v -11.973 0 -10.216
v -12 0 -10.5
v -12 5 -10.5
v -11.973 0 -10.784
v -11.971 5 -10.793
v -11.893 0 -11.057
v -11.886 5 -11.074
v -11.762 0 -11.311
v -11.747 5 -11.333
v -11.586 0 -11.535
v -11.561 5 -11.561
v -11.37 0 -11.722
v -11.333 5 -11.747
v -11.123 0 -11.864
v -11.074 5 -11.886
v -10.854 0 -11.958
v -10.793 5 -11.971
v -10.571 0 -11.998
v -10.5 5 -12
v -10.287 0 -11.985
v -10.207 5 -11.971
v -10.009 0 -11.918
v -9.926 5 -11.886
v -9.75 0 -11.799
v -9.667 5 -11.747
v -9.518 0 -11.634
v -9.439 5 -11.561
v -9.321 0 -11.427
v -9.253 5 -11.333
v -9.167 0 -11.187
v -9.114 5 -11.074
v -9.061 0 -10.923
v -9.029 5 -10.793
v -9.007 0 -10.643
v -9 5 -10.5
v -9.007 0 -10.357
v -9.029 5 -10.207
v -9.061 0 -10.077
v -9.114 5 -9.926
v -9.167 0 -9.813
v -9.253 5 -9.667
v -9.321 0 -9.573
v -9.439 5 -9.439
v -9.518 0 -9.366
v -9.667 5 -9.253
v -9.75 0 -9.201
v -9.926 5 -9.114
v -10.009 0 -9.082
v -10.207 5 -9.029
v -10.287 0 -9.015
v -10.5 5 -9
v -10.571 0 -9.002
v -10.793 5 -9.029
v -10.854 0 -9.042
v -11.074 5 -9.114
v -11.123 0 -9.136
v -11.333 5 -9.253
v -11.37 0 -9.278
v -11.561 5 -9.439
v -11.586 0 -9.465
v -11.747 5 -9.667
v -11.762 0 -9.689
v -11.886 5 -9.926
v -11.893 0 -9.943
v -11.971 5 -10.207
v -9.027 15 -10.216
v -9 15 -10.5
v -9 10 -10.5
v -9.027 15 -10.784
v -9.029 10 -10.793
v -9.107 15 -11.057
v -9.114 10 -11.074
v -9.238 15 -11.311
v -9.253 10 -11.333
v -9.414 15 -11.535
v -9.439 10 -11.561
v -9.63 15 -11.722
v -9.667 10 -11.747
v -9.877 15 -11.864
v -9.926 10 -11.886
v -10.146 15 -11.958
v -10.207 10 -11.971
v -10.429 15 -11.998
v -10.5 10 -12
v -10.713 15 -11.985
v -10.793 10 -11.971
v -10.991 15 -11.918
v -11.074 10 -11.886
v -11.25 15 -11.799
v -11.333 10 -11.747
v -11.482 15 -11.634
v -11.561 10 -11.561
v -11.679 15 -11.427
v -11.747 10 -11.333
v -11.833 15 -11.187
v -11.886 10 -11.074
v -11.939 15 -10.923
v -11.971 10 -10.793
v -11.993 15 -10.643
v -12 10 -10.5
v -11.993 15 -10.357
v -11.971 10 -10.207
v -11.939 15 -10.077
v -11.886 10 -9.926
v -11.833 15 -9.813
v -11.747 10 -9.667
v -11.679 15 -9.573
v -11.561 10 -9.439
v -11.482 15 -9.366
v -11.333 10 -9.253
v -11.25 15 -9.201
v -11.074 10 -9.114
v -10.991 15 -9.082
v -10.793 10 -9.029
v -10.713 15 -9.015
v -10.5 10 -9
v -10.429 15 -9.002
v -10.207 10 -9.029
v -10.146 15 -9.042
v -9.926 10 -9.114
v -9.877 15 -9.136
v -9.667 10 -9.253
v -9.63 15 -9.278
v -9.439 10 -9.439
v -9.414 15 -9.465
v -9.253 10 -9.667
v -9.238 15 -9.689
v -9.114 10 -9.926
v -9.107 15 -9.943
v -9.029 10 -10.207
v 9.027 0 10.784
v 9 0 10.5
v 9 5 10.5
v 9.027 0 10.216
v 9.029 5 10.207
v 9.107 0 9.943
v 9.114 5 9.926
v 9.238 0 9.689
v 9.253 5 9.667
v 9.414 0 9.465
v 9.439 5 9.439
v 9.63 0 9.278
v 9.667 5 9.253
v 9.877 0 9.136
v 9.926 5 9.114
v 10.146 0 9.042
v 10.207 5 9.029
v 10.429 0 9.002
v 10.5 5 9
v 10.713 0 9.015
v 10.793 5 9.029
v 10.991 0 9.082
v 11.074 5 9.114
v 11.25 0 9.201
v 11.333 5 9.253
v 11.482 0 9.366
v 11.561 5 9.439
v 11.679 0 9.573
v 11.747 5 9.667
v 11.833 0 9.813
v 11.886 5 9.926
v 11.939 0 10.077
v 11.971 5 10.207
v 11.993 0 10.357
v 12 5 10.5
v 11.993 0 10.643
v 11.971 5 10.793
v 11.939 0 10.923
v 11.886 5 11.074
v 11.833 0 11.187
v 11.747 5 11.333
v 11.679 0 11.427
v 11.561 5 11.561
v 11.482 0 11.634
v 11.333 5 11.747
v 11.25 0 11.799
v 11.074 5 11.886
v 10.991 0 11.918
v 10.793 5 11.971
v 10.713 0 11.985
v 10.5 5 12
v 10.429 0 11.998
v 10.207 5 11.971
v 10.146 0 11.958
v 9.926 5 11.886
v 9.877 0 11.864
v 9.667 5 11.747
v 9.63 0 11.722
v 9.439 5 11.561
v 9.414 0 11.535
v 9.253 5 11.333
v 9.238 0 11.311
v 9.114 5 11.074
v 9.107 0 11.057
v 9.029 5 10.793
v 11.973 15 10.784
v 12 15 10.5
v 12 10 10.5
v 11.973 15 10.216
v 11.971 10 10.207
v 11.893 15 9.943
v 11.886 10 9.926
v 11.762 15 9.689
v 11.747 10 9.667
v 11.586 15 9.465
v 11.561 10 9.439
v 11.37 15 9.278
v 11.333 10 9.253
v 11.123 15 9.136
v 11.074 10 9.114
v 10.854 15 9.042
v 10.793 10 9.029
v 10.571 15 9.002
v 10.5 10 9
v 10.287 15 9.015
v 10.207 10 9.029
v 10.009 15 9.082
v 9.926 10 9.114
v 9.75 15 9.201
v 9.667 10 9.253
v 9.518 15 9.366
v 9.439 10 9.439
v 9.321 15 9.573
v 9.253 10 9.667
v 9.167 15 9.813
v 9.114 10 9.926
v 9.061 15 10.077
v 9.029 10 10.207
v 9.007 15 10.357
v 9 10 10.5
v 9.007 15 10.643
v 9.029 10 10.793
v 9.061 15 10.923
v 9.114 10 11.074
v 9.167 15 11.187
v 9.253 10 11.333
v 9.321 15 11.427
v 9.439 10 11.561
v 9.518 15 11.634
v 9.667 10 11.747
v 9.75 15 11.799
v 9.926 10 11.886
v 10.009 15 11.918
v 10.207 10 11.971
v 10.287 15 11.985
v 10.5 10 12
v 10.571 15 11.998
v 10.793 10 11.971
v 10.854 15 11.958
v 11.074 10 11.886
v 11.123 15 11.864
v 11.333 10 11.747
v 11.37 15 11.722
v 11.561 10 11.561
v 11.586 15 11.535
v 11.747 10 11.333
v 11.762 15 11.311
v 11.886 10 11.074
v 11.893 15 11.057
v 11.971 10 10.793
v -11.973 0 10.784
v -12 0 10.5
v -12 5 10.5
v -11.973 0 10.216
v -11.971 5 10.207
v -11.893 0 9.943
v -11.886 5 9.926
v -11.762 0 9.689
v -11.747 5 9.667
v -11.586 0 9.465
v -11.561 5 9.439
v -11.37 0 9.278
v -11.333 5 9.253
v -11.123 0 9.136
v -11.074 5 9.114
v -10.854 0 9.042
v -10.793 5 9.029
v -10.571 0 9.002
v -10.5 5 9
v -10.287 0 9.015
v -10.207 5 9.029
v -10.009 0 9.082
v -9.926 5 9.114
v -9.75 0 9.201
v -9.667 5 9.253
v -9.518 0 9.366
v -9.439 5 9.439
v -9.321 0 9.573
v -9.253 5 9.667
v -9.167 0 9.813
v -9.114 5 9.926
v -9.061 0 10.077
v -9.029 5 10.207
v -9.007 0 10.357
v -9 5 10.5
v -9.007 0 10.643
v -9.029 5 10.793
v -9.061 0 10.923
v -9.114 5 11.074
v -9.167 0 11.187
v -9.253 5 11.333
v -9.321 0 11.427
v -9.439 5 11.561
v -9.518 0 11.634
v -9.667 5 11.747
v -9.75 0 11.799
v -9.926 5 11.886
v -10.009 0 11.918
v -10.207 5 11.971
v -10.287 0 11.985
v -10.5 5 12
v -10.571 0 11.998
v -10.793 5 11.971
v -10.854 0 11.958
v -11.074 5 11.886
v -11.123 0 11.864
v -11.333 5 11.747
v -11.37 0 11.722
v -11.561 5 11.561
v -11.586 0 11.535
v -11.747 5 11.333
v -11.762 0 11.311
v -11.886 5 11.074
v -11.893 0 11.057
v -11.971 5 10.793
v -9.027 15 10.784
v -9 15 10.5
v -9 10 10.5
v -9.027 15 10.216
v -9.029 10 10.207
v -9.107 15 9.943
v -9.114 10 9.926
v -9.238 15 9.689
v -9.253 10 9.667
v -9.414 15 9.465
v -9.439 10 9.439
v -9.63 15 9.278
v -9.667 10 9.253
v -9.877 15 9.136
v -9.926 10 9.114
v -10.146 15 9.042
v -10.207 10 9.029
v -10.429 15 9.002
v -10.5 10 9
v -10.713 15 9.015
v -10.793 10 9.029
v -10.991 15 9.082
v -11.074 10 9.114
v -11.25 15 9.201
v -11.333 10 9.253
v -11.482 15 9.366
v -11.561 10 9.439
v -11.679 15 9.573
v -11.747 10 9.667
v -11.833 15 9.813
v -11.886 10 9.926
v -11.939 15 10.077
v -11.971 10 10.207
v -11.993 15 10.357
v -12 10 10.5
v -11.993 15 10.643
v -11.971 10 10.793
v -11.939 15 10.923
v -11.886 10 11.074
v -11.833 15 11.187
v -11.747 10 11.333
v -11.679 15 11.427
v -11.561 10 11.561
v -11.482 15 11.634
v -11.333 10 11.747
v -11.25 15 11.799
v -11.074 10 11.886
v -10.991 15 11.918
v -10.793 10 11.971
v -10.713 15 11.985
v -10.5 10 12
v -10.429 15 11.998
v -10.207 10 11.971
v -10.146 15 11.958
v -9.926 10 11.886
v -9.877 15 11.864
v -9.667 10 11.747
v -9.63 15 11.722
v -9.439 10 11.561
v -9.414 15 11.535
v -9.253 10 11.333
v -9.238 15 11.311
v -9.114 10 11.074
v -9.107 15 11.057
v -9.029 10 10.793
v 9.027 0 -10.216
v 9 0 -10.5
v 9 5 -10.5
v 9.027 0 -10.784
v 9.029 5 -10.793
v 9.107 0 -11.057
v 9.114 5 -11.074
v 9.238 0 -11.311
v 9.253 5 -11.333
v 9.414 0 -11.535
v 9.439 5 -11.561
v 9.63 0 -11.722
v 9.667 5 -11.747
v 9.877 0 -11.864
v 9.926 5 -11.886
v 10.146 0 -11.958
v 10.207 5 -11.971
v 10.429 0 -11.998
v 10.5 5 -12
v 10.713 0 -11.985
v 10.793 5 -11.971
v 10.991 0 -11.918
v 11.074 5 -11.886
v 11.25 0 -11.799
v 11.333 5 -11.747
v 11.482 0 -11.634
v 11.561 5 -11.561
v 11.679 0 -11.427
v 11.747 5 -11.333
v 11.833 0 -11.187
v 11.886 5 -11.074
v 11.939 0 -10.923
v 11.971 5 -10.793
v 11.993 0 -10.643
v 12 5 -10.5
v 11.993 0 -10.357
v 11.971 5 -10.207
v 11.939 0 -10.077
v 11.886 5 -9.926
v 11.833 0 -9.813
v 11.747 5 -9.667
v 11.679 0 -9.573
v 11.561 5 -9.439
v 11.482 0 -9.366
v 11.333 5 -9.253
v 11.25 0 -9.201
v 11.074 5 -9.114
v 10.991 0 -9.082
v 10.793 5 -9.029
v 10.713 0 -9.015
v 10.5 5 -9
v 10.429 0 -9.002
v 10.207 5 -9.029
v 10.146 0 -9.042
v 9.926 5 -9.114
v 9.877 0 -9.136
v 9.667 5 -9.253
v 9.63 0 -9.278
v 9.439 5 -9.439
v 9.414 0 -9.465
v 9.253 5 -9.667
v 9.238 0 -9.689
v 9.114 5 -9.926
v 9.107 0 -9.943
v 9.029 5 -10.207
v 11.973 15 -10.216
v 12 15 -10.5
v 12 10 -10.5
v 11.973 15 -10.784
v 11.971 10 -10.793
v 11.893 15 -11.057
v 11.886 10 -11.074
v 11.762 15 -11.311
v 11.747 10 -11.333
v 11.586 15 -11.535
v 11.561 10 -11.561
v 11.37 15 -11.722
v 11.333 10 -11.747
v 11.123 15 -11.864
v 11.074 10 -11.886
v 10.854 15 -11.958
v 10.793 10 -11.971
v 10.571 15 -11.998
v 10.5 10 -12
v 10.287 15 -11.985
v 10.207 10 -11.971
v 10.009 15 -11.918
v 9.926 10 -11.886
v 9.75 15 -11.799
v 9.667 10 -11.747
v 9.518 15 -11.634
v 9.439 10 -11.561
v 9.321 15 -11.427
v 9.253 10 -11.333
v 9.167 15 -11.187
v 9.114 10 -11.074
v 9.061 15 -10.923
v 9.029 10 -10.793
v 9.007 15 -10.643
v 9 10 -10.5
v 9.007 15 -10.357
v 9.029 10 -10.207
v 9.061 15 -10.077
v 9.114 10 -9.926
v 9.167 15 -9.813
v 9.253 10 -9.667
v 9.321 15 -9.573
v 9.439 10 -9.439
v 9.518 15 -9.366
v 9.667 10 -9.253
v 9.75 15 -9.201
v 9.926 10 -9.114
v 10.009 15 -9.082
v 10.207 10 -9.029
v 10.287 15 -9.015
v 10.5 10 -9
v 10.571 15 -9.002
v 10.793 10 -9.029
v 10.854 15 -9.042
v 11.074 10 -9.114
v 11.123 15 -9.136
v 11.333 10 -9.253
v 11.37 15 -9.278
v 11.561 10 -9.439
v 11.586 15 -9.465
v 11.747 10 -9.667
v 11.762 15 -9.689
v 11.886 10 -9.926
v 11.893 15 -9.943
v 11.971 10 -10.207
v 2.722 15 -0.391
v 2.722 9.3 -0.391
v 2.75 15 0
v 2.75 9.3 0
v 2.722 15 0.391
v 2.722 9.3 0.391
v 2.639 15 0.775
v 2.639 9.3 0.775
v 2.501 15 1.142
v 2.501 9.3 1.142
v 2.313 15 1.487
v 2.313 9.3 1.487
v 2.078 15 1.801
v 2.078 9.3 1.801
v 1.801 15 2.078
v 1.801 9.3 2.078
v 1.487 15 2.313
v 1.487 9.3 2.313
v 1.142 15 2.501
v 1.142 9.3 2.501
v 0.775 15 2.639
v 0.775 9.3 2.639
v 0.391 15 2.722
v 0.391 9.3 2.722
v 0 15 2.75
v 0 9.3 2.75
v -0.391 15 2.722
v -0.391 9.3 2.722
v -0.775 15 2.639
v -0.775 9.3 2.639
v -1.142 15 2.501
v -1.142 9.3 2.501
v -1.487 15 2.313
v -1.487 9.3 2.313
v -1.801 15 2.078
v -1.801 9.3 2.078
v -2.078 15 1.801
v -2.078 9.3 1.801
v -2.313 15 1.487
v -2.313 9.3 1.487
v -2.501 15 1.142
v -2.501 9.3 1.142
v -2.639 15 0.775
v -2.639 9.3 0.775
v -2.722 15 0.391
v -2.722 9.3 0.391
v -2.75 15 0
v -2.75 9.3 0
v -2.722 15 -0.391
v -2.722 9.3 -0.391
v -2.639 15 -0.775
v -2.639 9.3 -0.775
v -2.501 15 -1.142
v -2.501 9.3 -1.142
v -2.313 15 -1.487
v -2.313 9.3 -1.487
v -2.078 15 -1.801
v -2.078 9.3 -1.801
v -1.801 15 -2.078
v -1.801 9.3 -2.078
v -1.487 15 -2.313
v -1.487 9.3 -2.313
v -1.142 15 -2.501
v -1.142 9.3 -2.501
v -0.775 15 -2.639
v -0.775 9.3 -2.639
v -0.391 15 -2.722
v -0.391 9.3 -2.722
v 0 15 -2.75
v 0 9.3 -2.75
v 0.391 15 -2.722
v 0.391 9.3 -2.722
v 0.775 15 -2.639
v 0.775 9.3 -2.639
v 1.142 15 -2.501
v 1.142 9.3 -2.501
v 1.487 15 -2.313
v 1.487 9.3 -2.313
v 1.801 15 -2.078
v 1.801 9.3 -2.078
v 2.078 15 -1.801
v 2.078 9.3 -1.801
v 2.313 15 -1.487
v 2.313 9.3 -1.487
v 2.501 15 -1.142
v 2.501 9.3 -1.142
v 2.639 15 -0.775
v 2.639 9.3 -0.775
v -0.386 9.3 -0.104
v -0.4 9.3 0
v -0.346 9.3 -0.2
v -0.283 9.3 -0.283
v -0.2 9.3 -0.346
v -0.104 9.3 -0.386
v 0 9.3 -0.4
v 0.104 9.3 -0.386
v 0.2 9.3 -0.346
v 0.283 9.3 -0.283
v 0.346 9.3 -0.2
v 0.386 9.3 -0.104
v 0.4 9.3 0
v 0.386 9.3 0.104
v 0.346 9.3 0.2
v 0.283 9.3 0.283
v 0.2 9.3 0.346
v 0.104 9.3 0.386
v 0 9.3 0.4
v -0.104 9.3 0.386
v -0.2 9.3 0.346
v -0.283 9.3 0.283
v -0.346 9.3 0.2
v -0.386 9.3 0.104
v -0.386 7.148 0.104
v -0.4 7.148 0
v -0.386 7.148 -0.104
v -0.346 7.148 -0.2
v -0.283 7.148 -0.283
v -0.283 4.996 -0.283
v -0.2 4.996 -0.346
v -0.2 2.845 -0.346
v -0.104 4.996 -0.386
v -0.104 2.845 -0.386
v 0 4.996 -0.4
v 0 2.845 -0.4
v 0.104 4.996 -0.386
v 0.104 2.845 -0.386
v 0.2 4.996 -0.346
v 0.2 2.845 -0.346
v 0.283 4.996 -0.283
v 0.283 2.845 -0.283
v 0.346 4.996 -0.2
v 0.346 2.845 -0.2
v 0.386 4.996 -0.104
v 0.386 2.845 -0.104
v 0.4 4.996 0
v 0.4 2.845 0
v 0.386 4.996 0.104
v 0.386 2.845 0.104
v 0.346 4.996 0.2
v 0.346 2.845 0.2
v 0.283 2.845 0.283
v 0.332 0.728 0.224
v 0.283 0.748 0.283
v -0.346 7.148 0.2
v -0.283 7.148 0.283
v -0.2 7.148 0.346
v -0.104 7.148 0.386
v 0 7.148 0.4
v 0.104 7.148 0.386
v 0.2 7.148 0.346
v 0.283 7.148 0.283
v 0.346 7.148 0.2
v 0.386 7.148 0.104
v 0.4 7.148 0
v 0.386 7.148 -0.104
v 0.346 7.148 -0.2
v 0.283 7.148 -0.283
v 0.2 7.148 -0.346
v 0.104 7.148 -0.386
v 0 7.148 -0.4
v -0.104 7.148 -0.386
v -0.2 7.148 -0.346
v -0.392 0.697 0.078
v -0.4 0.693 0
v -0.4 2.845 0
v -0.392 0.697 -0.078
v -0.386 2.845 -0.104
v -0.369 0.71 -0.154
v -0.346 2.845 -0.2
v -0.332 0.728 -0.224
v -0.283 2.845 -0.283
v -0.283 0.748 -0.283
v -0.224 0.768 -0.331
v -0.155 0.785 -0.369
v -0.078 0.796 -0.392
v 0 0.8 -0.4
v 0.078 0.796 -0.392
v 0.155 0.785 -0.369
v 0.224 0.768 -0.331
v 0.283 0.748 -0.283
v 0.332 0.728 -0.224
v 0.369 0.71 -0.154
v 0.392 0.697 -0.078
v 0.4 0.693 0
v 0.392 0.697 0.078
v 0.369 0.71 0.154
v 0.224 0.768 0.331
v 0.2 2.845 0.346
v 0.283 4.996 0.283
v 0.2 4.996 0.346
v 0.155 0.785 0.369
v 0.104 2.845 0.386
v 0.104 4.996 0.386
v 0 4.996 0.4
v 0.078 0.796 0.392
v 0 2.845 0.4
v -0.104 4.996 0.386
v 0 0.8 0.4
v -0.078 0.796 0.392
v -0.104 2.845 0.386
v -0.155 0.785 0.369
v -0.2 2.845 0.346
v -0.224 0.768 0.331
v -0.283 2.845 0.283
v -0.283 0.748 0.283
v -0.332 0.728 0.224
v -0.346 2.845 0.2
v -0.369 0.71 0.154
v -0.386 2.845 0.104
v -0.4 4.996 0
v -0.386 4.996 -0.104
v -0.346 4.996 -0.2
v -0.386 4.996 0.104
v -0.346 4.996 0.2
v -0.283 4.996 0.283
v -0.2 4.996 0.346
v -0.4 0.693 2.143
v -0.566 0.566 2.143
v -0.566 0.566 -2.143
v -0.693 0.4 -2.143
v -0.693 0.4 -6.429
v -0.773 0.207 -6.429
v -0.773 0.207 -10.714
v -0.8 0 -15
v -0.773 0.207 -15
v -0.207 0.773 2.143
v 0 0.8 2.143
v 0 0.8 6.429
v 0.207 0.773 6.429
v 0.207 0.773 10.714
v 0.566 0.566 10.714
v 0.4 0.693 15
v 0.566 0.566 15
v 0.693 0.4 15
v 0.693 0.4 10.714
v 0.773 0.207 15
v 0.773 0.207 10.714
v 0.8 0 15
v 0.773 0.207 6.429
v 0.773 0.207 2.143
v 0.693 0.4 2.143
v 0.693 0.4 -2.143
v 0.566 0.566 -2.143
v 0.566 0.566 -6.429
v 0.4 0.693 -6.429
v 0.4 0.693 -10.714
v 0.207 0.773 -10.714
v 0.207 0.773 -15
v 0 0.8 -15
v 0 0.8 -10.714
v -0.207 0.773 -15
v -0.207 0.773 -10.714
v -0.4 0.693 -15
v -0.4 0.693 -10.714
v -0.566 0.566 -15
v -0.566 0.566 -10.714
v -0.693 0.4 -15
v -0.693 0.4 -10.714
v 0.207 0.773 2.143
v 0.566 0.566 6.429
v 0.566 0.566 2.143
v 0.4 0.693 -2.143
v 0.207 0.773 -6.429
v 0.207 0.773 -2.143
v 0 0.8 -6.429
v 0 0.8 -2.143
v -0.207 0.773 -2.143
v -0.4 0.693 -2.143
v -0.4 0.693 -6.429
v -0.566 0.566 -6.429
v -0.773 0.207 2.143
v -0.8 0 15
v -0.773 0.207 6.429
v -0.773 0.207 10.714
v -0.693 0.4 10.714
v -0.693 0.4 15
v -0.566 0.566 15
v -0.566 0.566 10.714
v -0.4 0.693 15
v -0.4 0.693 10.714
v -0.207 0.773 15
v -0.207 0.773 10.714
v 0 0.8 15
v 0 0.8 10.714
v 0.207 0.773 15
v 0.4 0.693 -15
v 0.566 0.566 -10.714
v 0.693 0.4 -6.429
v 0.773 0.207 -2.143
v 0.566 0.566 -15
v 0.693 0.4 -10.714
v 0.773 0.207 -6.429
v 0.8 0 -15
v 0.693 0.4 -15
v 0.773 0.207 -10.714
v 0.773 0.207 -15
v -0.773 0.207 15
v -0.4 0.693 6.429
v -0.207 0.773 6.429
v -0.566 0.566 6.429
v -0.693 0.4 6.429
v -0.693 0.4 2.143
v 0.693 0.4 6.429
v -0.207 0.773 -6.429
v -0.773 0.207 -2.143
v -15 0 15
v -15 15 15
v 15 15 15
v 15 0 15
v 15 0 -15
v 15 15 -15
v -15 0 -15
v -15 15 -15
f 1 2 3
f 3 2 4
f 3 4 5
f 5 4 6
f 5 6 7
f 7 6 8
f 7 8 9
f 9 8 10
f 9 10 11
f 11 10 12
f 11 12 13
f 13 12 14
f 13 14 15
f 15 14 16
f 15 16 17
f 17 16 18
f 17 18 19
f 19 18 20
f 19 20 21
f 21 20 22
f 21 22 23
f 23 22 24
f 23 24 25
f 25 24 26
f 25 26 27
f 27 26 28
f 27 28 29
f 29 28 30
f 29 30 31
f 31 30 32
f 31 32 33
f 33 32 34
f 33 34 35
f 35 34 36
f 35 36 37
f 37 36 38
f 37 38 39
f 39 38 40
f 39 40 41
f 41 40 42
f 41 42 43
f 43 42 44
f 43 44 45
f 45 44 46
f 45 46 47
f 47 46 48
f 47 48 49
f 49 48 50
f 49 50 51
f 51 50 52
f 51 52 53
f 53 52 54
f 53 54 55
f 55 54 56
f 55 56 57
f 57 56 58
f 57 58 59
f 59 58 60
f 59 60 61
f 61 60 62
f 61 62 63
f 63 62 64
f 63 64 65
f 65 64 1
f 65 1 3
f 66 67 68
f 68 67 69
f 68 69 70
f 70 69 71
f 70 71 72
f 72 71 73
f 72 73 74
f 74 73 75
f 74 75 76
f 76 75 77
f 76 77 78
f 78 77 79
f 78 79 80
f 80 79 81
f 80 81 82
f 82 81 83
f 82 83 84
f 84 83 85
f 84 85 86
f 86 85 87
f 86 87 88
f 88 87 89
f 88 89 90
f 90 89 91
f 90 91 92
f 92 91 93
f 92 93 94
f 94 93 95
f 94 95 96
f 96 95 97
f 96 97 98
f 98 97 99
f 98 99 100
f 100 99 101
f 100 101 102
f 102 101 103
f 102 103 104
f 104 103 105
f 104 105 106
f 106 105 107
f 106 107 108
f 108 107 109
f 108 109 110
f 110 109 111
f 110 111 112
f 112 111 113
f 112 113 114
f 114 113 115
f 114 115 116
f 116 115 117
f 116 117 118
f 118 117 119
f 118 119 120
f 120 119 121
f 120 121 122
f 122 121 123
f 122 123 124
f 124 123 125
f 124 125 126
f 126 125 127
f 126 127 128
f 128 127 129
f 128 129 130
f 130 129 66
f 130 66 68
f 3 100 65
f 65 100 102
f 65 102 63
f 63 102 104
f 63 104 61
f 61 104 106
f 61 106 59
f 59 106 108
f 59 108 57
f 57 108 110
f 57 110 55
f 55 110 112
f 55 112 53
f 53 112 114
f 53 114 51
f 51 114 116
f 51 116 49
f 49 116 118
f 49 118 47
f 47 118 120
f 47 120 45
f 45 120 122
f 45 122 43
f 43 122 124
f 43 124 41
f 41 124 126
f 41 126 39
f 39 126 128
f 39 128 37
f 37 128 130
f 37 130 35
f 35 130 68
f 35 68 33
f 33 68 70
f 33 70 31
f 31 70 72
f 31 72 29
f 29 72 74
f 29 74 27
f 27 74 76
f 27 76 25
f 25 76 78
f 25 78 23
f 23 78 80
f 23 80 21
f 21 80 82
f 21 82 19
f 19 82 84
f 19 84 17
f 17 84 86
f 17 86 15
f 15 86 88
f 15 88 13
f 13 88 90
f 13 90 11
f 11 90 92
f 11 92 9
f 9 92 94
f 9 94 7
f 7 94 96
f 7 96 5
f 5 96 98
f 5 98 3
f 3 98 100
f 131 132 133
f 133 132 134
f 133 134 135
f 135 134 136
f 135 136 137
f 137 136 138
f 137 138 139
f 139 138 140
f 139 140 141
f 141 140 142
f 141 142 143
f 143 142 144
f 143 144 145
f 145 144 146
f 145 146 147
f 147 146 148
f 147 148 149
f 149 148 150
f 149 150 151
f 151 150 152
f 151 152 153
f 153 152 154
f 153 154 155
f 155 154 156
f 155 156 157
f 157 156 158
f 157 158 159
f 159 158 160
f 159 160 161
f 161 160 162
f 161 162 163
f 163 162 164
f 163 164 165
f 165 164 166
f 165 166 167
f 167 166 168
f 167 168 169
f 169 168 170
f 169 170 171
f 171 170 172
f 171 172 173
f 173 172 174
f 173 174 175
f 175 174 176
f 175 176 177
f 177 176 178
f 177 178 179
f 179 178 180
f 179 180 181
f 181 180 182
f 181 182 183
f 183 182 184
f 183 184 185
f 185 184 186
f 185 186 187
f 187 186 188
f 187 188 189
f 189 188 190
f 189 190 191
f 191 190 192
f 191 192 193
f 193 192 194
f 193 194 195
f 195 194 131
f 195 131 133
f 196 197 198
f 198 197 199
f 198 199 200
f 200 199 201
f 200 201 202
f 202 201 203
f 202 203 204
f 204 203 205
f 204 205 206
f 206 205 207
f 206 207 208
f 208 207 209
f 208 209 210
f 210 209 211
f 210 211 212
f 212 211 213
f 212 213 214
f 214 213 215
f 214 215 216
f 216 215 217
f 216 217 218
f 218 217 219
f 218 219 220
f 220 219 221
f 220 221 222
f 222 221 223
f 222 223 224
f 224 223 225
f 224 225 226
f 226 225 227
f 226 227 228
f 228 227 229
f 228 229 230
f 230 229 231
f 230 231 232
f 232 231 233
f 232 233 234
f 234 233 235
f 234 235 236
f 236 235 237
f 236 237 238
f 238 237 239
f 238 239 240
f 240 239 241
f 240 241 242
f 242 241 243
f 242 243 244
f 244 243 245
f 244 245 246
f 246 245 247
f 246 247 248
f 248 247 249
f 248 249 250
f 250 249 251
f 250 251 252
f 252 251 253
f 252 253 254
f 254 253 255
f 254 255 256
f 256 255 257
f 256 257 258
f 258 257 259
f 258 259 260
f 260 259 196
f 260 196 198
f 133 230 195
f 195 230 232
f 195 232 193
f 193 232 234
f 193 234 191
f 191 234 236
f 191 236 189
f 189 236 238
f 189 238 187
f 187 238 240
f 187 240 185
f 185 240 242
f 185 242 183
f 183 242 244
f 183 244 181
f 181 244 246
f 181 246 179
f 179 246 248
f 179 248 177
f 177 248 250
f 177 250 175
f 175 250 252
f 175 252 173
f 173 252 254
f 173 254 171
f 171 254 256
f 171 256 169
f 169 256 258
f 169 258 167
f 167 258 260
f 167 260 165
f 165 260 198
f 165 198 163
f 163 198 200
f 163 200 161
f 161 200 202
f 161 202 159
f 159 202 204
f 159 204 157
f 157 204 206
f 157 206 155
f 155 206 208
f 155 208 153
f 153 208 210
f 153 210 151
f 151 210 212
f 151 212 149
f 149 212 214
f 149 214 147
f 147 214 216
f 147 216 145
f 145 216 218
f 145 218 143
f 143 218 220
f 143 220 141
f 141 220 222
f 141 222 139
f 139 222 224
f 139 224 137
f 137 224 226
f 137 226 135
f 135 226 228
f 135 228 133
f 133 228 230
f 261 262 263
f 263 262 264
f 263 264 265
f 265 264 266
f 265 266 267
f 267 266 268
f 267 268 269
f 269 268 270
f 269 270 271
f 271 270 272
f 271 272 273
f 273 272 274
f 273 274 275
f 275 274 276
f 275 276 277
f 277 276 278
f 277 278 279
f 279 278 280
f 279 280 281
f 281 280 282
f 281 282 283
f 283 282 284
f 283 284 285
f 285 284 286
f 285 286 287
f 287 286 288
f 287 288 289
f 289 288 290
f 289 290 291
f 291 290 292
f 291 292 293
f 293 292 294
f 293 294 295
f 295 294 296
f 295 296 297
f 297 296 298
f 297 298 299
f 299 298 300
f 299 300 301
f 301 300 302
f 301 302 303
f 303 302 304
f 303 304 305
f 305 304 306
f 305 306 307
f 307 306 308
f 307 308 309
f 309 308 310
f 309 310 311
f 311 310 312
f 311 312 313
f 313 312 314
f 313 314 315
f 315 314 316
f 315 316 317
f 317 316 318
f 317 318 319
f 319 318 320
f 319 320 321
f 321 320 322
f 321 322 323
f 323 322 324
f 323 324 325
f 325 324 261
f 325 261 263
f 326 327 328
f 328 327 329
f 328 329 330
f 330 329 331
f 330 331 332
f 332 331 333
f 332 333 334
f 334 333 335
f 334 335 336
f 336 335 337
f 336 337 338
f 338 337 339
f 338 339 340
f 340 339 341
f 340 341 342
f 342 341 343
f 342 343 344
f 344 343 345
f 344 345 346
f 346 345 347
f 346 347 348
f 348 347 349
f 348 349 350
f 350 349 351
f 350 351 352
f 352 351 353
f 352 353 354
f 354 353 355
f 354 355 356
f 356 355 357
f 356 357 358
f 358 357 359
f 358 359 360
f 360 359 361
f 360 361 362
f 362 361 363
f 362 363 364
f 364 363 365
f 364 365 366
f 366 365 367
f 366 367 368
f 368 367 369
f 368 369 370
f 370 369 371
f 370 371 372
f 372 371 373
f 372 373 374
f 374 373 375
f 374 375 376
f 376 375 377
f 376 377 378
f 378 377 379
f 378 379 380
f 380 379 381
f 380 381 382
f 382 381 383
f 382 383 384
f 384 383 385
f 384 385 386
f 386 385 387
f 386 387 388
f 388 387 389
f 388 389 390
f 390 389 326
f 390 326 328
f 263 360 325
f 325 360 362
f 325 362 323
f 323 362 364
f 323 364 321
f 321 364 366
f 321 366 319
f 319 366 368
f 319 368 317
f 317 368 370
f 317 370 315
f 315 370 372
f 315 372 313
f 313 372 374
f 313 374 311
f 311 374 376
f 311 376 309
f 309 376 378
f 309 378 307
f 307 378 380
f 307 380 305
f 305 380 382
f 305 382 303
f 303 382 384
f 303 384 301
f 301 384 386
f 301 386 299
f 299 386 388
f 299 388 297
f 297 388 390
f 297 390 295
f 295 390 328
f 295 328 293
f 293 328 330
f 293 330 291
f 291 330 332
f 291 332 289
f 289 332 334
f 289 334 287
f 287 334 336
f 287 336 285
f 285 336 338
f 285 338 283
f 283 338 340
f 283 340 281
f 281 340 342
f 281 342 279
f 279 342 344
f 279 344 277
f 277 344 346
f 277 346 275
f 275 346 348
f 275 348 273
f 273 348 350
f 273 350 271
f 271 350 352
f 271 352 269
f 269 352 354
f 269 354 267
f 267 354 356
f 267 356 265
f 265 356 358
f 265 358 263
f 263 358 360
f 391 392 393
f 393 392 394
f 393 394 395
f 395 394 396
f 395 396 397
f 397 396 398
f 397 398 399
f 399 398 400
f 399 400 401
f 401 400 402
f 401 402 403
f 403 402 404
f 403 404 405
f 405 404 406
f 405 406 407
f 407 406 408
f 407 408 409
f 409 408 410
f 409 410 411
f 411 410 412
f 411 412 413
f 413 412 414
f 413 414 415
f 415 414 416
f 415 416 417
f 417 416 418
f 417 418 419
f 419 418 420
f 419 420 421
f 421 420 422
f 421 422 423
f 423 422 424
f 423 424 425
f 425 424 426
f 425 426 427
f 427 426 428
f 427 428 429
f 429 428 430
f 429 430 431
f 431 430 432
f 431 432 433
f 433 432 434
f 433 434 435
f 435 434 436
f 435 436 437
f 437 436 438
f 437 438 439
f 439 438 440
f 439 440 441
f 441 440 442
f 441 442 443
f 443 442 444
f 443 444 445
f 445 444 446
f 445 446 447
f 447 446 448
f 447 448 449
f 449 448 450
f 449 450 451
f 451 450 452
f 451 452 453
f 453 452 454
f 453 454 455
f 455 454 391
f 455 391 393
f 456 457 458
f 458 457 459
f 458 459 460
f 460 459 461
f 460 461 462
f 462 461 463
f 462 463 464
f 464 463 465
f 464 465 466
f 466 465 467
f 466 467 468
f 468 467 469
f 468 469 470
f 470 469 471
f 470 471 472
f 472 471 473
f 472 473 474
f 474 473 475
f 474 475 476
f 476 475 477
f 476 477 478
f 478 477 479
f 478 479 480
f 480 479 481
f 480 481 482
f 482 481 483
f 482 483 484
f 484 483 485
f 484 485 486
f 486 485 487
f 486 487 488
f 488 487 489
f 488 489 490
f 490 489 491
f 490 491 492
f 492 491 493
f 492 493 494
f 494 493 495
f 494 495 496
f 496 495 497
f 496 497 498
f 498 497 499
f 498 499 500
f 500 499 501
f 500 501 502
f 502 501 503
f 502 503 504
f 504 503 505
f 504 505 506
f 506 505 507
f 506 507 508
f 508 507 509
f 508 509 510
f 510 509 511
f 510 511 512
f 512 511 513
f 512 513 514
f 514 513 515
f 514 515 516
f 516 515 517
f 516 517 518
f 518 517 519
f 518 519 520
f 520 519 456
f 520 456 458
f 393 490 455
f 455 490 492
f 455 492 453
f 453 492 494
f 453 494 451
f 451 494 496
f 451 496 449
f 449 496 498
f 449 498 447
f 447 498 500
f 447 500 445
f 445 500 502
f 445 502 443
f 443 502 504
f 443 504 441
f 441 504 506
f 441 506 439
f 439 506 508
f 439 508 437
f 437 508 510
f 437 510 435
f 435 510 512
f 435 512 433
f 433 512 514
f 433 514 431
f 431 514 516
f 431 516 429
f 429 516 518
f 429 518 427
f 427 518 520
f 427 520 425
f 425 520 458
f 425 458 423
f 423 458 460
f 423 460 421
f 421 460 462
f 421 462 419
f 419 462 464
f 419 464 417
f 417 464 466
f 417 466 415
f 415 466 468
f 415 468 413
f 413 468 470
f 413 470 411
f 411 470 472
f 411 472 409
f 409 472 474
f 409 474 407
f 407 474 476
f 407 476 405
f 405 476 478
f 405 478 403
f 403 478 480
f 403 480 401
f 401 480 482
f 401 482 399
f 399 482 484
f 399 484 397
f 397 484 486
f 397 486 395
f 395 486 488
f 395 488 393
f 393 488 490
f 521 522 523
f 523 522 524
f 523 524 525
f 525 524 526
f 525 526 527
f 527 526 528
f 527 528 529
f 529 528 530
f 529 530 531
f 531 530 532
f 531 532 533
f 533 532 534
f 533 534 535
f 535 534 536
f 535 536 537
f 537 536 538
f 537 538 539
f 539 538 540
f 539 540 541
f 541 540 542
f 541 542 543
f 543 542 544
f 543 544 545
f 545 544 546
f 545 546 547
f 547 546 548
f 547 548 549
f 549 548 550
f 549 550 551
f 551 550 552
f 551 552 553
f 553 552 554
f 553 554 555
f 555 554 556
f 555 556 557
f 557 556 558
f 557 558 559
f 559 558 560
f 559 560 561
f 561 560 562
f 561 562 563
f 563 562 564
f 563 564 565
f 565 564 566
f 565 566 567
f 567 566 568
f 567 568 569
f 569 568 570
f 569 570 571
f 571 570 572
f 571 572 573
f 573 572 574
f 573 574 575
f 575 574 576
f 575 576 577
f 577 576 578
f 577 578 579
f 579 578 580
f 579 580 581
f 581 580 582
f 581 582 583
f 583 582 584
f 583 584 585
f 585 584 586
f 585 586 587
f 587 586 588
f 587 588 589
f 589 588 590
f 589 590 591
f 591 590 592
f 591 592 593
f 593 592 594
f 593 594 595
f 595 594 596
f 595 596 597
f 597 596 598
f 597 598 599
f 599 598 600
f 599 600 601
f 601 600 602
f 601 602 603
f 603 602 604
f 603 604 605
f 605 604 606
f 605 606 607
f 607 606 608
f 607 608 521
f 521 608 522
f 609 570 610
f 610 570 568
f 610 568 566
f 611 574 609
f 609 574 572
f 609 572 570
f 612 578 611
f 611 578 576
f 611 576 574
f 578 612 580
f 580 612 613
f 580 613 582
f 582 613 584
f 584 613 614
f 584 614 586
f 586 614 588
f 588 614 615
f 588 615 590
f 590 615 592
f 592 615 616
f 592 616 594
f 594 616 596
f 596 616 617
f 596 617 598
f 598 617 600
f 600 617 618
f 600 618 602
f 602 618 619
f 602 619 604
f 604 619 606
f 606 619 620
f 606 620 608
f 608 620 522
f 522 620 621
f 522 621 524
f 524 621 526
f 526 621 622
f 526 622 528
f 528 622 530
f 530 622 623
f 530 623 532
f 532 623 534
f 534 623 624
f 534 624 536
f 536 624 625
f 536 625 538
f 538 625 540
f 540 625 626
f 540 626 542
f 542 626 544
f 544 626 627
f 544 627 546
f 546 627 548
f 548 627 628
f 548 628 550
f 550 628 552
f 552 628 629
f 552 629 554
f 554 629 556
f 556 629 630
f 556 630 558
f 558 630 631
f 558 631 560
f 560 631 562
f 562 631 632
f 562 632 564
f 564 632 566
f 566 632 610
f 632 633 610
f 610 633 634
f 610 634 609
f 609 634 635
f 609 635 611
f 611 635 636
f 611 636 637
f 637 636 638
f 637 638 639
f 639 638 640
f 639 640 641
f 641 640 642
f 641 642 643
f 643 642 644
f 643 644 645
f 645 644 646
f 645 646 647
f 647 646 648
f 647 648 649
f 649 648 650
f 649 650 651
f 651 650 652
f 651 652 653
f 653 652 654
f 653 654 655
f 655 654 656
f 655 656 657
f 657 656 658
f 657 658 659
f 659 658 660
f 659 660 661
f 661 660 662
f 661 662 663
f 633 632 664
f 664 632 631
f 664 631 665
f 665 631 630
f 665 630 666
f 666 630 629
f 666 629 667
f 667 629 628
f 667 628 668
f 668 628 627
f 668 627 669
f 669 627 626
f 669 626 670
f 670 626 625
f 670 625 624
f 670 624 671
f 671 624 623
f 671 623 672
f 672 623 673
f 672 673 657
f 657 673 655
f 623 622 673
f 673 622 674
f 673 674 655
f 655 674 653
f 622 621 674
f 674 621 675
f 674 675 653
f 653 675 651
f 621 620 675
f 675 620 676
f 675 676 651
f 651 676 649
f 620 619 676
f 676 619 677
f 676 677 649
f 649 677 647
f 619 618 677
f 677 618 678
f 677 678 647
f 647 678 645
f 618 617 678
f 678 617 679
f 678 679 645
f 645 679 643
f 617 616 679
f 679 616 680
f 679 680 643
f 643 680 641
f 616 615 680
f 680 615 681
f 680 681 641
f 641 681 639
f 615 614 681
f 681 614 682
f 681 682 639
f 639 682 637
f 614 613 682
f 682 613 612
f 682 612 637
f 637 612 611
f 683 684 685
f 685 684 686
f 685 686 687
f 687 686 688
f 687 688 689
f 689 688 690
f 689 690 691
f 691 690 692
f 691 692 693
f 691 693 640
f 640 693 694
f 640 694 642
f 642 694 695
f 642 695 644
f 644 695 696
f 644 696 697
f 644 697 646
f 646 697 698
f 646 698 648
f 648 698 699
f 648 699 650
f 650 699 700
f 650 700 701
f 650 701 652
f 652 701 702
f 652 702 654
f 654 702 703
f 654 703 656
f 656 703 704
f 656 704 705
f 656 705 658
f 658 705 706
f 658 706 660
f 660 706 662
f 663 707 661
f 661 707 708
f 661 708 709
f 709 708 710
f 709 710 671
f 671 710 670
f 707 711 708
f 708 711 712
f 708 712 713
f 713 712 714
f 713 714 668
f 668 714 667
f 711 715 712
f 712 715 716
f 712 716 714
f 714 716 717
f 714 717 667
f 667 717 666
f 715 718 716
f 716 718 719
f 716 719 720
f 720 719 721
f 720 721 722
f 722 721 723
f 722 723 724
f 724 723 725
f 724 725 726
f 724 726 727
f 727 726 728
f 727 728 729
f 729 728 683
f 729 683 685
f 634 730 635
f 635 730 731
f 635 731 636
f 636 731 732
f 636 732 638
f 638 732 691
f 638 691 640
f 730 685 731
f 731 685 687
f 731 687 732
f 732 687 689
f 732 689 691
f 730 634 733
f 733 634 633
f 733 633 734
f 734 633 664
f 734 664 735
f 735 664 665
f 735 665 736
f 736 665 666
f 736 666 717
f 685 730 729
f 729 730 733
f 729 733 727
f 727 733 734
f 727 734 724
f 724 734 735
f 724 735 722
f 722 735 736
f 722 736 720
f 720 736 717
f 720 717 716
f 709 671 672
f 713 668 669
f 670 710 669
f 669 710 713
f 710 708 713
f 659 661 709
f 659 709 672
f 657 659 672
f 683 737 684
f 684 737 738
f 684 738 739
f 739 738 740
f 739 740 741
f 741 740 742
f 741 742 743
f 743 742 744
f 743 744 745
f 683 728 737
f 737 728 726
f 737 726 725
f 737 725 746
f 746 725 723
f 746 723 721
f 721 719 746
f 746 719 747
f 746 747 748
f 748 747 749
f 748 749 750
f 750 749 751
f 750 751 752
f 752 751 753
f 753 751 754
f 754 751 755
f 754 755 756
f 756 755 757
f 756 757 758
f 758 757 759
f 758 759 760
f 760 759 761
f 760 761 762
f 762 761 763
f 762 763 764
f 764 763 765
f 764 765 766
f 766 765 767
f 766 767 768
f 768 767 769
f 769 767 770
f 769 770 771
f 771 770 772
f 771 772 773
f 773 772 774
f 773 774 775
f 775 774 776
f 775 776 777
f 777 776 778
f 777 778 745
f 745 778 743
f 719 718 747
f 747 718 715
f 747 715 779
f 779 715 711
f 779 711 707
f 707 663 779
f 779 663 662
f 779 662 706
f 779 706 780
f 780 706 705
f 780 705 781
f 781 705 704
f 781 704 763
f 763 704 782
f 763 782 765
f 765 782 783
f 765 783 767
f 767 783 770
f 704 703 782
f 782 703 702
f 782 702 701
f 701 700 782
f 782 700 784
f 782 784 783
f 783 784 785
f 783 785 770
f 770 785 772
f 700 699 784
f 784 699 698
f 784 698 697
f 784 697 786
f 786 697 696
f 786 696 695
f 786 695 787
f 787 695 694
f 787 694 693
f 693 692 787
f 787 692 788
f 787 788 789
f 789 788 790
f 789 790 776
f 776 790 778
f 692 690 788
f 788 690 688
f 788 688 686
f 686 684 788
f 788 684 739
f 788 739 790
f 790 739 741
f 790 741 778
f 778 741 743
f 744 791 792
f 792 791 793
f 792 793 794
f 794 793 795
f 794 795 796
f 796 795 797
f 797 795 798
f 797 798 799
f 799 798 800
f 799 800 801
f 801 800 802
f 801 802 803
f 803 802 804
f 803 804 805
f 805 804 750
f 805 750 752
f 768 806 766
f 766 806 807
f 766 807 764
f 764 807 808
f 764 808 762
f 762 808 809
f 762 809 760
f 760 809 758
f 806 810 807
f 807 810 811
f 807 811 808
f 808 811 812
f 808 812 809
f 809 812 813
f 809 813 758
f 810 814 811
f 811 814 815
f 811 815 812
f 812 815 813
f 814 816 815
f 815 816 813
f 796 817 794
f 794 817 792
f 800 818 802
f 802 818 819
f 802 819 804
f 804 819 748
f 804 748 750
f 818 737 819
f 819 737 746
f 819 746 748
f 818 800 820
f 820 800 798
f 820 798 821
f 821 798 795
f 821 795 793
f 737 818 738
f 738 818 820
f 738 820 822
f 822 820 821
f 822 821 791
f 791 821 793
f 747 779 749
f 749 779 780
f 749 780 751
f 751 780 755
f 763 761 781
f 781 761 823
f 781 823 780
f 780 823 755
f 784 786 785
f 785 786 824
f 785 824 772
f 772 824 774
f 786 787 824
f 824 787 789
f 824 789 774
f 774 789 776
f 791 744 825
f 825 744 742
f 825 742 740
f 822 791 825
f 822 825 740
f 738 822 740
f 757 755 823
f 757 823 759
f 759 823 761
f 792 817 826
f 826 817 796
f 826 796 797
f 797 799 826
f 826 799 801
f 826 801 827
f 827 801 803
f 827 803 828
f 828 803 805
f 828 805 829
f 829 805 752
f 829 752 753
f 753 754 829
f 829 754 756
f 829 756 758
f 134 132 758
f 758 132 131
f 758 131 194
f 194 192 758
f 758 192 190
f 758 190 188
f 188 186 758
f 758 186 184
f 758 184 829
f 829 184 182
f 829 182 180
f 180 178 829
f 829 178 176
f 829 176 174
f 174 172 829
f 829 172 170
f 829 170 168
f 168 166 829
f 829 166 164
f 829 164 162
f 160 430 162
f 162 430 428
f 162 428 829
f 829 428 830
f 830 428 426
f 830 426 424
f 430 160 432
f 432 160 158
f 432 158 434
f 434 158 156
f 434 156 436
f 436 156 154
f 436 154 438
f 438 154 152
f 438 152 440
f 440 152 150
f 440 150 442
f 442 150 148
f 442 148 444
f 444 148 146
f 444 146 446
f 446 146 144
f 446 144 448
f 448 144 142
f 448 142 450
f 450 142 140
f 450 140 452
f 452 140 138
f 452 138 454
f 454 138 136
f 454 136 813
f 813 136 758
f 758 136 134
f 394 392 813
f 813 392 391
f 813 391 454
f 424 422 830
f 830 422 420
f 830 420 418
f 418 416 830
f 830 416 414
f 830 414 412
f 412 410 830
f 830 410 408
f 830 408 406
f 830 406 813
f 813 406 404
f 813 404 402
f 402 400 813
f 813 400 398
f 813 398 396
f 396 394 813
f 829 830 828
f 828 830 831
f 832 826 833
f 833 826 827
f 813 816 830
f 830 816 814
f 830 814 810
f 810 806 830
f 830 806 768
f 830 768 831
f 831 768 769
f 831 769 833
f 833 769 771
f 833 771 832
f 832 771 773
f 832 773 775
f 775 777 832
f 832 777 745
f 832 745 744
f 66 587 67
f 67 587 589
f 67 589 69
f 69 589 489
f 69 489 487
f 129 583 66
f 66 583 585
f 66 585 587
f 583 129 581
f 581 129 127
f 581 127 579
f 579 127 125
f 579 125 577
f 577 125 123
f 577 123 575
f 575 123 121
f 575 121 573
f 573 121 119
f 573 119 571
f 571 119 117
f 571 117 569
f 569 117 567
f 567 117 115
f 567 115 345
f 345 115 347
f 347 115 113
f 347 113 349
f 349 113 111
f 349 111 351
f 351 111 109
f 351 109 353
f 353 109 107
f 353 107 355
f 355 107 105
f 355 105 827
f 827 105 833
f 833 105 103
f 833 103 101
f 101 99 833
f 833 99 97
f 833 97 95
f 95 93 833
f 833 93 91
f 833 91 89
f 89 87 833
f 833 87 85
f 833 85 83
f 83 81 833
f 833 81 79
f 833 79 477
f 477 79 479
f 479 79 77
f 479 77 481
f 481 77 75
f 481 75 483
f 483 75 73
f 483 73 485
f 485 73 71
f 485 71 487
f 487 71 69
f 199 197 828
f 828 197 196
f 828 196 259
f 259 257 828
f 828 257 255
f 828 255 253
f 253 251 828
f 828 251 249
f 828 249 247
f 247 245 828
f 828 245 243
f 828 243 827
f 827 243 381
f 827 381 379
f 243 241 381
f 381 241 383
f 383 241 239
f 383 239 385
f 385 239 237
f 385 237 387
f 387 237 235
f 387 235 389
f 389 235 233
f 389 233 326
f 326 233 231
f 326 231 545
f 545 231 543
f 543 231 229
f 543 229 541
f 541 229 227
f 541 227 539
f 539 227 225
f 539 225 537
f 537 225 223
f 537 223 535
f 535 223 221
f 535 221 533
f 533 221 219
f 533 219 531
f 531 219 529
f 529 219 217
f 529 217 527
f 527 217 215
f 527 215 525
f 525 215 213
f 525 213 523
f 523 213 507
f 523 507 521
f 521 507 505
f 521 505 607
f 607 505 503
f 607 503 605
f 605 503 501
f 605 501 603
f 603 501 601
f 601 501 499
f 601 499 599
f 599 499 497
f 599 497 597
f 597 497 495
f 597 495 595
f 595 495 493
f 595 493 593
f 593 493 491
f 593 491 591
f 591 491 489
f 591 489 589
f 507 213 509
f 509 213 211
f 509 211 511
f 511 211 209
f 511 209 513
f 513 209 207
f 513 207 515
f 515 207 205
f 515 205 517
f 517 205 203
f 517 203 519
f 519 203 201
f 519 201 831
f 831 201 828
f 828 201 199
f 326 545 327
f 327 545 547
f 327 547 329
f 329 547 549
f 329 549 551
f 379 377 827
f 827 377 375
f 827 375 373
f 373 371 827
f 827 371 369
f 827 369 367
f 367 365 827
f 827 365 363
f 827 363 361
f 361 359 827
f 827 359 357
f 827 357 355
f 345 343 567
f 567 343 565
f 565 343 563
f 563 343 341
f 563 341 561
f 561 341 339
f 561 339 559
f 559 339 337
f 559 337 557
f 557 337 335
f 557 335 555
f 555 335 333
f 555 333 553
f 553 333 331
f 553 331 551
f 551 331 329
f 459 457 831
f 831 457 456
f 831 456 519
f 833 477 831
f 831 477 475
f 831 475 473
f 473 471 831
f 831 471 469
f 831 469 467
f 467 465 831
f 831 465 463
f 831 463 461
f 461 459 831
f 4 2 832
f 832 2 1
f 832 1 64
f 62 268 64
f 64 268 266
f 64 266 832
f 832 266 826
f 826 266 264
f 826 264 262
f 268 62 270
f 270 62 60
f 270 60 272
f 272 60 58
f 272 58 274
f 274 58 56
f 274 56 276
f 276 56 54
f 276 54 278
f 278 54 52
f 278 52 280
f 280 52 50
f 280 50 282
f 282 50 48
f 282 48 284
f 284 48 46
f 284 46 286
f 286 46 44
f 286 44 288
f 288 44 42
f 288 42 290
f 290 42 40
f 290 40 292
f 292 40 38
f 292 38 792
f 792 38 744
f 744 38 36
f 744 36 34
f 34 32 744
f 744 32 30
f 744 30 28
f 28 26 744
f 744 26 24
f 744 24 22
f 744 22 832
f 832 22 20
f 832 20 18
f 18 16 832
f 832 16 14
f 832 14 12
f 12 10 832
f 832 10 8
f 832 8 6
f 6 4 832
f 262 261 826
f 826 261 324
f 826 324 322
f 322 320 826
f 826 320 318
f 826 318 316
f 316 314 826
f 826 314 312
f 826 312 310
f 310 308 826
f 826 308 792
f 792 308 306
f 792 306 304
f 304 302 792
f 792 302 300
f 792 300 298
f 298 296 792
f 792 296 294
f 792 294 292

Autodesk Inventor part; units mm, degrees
ref_plane "YZ Plane" through (0, 0, 0) normal (1, 0, 0) x (0, 1, 0)
ref_plane "XZ Plane" through (0, 0, 0) normal (0, 1, 0) x (-1, 0, 0)
ref_plane "XY Plane" through (0, 0, 0) normal (0, 0, 1) x (1, 0, 0)
sketch "Skizze1" plane through (0, 0, 0) normal (0, 1, 0) x (-1, 0, 0)
  line L0 (-15, 15) -> (15, 15)
  line L1 (15, 15) -> (15, -15)
  line L2 (15, -15) -> (-15, -15)
  line L3 (-15, -15) -> (-15, 15)
  line L4 (-15, 15) -> (15, -15) construction
  line L5 (15, 15) -> (-15, -15) construction
  point P0 (0, 0)
  dimension "d0" = 30
  dimension "d1" = 30
extrude "Extrusion1" add sketch "Skizze1" along normal blind 15
sketch "Skizze2" plane through (-15, 0, 15) normal (0, 0, 1) x (1, 0, 0)
  circle A0 centre (15, 0) radius 0.8
  dimension "d4" = 1.6
hole "Bohrung1" at (0, 0, 15) direction (0, 0, -1) diameter 1.6 end through all
sketch "Skizze3" plane through (0, 15, 0) normal (0, 1, 0) x (1, 0, 0)
  point P0 (0, 0)
hole "Bohrung2" at (0, 15, 0) direction (0, -1, 0) diameter 0.8 end through all
sketch "Skizze4" plane through (0, 15, 0) normal (0, 1, 0) x (1, 0, 0)
  point P0 (0, 0)
  point P1 (0, 0)
hole "Bohrung3" at (0, 15, 0) direction (0, -1, 0) diameter 5.5 depth 5.7
sketch "Skizze5" plane through (0, 15, 0) normal (0, 1, 0) x (1, 0, 0)
  point P0 (0, 0)
sketch "Skizze6" plane through (0, 15, 0) normal (0, 1, 0) x (1, 0, 0)
  line L0 (10.5, 10.5) -> (-10.5, 10.5)
  line L1 (-10.5, 10.5) -> (-10.5, -10.5)
  line L2 (-10.5, -10.5) -> (10.5, -10.5)
  line L3 (10.5, -10.5) -> (10.5, 10.5)
  circle A0 centre (0, 0) radius 0.4 projected
  line L4 (10.5, 10.5) -> (-10.5, -10.5) construction
  line L5 (-10.5, 10.5) -> (10.5, -10.5) construction
  dimension "d26" = 21
  dimension "d27" = 21
hole "Bohrung4" at (10.5, 15, 10.5) at (-10.5, 15, 10.5) at (-10.5, 15, -10.5) at (10.5, 15, -10.5) direction (0, -1, 0) diameter 3 end through all
properties part number "LS1_Aufsatz" material "PMMA-Kunststoff"
